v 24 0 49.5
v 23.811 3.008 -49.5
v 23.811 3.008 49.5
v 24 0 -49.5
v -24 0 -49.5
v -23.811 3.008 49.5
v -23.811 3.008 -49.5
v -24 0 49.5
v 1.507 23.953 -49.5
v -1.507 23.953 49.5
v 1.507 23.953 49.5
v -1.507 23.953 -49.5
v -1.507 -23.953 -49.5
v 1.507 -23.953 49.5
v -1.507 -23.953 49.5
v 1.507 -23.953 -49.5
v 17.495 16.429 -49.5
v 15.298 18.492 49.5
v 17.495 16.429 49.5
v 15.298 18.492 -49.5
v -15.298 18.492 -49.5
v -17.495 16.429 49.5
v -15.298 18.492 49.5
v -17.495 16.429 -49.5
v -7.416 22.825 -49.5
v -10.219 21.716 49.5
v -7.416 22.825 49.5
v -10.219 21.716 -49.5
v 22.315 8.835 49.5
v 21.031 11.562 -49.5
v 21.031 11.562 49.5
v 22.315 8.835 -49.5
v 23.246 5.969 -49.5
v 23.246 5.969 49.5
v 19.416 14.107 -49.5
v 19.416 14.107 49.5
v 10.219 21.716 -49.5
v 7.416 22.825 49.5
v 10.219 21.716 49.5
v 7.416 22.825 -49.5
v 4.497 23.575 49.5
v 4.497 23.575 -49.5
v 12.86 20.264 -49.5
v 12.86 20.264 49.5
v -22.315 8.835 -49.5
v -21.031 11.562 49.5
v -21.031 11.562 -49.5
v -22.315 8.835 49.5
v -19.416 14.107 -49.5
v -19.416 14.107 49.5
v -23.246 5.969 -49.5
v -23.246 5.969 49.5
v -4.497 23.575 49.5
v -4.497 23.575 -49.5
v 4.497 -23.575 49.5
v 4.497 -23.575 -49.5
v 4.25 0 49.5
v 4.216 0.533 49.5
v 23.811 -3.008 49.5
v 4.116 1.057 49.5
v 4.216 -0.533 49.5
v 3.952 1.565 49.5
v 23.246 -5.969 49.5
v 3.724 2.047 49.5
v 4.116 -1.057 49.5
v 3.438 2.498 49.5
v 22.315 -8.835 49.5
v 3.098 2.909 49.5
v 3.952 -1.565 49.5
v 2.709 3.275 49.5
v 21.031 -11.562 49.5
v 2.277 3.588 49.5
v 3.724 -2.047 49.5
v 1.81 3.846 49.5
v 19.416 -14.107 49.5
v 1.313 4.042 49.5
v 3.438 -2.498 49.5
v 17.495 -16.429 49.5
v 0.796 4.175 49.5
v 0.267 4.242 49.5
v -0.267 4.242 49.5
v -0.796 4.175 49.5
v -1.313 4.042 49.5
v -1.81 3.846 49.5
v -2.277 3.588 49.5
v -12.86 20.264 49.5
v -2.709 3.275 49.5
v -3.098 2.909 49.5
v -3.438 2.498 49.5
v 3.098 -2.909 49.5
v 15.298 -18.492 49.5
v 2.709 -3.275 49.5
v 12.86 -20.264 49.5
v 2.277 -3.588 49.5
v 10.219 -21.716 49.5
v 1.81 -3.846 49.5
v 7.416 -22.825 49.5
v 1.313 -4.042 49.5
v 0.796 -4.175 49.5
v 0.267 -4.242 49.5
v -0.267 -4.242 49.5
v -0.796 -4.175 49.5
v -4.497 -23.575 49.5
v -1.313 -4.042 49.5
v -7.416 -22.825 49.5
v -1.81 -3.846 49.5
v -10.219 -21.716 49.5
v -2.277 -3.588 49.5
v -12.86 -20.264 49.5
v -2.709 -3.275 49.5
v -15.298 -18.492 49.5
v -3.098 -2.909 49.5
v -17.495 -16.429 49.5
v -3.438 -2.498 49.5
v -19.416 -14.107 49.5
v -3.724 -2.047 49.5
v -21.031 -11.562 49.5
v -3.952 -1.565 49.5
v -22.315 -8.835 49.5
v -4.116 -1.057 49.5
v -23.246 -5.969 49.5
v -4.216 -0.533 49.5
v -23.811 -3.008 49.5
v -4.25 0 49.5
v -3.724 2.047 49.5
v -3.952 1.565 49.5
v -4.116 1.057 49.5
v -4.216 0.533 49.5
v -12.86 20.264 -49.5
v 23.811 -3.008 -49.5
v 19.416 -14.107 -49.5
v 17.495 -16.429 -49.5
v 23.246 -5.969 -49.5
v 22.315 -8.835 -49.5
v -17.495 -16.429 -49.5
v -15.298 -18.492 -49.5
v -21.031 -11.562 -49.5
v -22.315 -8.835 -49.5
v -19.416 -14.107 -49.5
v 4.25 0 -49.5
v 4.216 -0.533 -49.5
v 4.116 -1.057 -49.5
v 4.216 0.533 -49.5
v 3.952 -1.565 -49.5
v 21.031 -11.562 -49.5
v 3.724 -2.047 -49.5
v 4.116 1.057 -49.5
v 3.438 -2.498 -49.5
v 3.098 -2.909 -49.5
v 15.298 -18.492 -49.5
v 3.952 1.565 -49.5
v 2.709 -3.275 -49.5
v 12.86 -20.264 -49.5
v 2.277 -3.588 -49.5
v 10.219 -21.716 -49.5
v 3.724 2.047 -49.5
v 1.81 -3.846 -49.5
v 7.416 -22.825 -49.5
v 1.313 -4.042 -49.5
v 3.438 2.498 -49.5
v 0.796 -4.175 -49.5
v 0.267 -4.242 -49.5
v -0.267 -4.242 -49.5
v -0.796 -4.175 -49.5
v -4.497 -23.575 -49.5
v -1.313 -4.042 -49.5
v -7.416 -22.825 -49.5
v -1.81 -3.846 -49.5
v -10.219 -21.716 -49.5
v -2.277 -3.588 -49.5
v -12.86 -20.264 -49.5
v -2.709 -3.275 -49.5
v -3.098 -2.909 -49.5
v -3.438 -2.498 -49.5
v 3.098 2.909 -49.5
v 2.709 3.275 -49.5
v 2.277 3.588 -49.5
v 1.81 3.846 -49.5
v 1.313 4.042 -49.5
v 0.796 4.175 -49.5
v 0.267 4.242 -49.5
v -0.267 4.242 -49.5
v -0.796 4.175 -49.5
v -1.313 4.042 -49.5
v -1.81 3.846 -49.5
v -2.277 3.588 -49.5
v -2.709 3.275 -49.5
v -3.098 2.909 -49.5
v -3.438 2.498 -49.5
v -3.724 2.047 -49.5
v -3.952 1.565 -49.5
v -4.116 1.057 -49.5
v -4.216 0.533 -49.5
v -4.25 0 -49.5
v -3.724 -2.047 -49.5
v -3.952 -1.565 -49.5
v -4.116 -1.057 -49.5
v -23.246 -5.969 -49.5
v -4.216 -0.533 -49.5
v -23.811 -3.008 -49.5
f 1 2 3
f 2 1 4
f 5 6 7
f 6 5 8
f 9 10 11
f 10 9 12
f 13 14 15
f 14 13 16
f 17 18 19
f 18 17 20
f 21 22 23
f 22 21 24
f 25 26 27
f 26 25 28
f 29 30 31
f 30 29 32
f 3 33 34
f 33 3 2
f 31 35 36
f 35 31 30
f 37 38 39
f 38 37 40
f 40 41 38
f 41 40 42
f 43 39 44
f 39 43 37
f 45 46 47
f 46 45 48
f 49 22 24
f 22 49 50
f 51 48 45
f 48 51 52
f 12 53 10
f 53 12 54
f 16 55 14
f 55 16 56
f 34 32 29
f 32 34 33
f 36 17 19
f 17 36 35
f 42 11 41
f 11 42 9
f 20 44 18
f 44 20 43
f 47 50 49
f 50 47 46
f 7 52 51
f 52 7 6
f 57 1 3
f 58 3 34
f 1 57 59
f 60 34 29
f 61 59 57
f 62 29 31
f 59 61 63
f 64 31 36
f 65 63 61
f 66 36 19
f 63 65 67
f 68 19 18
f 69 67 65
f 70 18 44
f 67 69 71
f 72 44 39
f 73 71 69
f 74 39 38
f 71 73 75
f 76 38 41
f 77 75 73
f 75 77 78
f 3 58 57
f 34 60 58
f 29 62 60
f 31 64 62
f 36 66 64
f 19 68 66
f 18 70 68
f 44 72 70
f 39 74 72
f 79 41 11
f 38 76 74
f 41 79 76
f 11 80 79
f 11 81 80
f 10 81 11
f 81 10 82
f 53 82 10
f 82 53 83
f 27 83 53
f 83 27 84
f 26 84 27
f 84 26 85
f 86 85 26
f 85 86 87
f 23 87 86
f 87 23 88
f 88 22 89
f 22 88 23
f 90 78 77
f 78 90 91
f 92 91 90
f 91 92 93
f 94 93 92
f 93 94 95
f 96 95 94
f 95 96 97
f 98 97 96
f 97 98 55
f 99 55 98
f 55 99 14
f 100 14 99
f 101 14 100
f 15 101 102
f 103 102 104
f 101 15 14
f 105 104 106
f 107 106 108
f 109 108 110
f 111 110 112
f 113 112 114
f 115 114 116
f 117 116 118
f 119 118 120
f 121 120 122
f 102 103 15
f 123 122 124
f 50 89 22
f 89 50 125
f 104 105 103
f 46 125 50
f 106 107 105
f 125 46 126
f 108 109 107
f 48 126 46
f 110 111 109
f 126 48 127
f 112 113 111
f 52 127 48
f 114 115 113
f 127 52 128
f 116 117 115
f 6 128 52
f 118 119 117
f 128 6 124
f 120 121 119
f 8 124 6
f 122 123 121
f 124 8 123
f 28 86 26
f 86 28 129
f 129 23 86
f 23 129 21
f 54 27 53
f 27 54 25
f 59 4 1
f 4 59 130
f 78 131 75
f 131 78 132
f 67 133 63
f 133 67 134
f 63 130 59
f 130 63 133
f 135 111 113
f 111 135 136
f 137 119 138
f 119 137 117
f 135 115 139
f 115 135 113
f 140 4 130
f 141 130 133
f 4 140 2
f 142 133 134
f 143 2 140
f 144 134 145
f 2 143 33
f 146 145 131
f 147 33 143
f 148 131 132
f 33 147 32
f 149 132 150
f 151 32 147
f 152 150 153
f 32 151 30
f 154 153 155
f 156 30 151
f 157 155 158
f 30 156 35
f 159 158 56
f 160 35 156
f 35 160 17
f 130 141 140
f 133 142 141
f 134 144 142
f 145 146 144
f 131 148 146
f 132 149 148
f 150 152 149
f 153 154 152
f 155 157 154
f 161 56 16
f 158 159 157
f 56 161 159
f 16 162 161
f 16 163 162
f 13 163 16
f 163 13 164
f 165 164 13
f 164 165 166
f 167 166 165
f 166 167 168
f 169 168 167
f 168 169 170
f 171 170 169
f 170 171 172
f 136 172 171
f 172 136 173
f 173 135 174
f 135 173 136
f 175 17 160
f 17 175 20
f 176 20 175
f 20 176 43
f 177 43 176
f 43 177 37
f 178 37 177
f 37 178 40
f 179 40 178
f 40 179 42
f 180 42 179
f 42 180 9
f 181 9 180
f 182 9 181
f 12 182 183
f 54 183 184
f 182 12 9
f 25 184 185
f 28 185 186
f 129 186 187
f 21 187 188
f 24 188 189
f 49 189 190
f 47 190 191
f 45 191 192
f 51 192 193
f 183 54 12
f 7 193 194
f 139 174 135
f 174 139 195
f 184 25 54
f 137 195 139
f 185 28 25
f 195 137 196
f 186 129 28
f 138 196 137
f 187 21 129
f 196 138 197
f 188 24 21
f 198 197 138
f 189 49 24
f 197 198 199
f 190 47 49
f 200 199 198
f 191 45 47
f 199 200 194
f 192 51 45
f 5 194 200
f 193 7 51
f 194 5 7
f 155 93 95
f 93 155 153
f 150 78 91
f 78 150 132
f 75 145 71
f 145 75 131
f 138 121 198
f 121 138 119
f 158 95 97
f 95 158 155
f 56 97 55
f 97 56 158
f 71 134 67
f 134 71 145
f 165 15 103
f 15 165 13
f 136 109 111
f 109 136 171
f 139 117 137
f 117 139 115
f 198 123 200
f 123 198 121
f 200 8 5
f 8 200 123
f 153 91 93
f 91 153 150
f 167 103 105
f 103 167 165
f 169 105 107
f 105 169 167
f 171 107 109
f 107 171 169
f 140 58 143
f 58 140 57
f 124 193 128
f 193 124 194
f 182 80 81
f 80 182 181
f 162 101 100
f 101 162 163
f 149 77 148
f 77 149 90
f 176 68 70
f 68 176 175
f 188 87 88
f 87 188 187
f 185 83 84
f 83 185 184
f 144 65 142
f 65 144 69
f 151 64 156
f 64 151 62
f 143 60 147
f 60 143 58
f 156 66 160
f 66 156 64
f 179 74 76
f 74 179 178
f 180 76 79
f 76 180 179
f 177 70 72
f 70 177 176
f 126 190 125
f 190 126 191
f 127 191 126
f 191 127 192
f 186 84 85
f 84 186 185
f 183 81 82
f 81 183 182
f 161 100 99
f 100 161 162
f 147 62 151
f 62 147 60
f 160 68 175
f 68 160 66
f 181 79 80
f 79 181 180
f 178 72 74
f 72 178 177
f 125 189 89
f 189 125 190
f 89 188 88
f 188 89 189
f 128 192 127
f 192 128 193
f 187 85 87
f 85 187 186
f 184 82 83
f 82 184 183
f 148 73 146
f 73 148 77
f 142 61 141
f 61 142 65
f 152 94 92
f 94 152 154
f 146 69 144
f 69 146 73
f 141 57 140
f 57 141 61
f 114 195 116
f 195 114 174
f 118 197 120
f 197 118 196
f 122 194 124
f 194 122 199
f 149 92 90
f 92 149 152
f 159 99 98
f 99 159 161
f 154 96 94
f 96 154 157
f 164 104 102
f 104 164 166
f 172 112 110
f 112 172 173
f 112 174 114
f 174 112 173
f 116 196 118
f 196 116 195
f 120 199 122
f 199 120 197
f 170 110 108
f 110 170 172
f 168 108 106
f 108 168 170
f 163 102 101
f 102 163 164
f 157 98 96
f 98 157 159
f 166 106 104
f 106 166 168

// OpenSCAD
$fn = 50;


difference() {
	union() {
		translate(v = [0, 0, -49.5000000000]) {
			cylinder(h = 99, r = 24.0000000000);
		}
	}
	union() {
		translate(v = [0, 0, -100.0000000000]) {
			cylinder(h = 200, r = 4.2500000000);
		}
	}
}
